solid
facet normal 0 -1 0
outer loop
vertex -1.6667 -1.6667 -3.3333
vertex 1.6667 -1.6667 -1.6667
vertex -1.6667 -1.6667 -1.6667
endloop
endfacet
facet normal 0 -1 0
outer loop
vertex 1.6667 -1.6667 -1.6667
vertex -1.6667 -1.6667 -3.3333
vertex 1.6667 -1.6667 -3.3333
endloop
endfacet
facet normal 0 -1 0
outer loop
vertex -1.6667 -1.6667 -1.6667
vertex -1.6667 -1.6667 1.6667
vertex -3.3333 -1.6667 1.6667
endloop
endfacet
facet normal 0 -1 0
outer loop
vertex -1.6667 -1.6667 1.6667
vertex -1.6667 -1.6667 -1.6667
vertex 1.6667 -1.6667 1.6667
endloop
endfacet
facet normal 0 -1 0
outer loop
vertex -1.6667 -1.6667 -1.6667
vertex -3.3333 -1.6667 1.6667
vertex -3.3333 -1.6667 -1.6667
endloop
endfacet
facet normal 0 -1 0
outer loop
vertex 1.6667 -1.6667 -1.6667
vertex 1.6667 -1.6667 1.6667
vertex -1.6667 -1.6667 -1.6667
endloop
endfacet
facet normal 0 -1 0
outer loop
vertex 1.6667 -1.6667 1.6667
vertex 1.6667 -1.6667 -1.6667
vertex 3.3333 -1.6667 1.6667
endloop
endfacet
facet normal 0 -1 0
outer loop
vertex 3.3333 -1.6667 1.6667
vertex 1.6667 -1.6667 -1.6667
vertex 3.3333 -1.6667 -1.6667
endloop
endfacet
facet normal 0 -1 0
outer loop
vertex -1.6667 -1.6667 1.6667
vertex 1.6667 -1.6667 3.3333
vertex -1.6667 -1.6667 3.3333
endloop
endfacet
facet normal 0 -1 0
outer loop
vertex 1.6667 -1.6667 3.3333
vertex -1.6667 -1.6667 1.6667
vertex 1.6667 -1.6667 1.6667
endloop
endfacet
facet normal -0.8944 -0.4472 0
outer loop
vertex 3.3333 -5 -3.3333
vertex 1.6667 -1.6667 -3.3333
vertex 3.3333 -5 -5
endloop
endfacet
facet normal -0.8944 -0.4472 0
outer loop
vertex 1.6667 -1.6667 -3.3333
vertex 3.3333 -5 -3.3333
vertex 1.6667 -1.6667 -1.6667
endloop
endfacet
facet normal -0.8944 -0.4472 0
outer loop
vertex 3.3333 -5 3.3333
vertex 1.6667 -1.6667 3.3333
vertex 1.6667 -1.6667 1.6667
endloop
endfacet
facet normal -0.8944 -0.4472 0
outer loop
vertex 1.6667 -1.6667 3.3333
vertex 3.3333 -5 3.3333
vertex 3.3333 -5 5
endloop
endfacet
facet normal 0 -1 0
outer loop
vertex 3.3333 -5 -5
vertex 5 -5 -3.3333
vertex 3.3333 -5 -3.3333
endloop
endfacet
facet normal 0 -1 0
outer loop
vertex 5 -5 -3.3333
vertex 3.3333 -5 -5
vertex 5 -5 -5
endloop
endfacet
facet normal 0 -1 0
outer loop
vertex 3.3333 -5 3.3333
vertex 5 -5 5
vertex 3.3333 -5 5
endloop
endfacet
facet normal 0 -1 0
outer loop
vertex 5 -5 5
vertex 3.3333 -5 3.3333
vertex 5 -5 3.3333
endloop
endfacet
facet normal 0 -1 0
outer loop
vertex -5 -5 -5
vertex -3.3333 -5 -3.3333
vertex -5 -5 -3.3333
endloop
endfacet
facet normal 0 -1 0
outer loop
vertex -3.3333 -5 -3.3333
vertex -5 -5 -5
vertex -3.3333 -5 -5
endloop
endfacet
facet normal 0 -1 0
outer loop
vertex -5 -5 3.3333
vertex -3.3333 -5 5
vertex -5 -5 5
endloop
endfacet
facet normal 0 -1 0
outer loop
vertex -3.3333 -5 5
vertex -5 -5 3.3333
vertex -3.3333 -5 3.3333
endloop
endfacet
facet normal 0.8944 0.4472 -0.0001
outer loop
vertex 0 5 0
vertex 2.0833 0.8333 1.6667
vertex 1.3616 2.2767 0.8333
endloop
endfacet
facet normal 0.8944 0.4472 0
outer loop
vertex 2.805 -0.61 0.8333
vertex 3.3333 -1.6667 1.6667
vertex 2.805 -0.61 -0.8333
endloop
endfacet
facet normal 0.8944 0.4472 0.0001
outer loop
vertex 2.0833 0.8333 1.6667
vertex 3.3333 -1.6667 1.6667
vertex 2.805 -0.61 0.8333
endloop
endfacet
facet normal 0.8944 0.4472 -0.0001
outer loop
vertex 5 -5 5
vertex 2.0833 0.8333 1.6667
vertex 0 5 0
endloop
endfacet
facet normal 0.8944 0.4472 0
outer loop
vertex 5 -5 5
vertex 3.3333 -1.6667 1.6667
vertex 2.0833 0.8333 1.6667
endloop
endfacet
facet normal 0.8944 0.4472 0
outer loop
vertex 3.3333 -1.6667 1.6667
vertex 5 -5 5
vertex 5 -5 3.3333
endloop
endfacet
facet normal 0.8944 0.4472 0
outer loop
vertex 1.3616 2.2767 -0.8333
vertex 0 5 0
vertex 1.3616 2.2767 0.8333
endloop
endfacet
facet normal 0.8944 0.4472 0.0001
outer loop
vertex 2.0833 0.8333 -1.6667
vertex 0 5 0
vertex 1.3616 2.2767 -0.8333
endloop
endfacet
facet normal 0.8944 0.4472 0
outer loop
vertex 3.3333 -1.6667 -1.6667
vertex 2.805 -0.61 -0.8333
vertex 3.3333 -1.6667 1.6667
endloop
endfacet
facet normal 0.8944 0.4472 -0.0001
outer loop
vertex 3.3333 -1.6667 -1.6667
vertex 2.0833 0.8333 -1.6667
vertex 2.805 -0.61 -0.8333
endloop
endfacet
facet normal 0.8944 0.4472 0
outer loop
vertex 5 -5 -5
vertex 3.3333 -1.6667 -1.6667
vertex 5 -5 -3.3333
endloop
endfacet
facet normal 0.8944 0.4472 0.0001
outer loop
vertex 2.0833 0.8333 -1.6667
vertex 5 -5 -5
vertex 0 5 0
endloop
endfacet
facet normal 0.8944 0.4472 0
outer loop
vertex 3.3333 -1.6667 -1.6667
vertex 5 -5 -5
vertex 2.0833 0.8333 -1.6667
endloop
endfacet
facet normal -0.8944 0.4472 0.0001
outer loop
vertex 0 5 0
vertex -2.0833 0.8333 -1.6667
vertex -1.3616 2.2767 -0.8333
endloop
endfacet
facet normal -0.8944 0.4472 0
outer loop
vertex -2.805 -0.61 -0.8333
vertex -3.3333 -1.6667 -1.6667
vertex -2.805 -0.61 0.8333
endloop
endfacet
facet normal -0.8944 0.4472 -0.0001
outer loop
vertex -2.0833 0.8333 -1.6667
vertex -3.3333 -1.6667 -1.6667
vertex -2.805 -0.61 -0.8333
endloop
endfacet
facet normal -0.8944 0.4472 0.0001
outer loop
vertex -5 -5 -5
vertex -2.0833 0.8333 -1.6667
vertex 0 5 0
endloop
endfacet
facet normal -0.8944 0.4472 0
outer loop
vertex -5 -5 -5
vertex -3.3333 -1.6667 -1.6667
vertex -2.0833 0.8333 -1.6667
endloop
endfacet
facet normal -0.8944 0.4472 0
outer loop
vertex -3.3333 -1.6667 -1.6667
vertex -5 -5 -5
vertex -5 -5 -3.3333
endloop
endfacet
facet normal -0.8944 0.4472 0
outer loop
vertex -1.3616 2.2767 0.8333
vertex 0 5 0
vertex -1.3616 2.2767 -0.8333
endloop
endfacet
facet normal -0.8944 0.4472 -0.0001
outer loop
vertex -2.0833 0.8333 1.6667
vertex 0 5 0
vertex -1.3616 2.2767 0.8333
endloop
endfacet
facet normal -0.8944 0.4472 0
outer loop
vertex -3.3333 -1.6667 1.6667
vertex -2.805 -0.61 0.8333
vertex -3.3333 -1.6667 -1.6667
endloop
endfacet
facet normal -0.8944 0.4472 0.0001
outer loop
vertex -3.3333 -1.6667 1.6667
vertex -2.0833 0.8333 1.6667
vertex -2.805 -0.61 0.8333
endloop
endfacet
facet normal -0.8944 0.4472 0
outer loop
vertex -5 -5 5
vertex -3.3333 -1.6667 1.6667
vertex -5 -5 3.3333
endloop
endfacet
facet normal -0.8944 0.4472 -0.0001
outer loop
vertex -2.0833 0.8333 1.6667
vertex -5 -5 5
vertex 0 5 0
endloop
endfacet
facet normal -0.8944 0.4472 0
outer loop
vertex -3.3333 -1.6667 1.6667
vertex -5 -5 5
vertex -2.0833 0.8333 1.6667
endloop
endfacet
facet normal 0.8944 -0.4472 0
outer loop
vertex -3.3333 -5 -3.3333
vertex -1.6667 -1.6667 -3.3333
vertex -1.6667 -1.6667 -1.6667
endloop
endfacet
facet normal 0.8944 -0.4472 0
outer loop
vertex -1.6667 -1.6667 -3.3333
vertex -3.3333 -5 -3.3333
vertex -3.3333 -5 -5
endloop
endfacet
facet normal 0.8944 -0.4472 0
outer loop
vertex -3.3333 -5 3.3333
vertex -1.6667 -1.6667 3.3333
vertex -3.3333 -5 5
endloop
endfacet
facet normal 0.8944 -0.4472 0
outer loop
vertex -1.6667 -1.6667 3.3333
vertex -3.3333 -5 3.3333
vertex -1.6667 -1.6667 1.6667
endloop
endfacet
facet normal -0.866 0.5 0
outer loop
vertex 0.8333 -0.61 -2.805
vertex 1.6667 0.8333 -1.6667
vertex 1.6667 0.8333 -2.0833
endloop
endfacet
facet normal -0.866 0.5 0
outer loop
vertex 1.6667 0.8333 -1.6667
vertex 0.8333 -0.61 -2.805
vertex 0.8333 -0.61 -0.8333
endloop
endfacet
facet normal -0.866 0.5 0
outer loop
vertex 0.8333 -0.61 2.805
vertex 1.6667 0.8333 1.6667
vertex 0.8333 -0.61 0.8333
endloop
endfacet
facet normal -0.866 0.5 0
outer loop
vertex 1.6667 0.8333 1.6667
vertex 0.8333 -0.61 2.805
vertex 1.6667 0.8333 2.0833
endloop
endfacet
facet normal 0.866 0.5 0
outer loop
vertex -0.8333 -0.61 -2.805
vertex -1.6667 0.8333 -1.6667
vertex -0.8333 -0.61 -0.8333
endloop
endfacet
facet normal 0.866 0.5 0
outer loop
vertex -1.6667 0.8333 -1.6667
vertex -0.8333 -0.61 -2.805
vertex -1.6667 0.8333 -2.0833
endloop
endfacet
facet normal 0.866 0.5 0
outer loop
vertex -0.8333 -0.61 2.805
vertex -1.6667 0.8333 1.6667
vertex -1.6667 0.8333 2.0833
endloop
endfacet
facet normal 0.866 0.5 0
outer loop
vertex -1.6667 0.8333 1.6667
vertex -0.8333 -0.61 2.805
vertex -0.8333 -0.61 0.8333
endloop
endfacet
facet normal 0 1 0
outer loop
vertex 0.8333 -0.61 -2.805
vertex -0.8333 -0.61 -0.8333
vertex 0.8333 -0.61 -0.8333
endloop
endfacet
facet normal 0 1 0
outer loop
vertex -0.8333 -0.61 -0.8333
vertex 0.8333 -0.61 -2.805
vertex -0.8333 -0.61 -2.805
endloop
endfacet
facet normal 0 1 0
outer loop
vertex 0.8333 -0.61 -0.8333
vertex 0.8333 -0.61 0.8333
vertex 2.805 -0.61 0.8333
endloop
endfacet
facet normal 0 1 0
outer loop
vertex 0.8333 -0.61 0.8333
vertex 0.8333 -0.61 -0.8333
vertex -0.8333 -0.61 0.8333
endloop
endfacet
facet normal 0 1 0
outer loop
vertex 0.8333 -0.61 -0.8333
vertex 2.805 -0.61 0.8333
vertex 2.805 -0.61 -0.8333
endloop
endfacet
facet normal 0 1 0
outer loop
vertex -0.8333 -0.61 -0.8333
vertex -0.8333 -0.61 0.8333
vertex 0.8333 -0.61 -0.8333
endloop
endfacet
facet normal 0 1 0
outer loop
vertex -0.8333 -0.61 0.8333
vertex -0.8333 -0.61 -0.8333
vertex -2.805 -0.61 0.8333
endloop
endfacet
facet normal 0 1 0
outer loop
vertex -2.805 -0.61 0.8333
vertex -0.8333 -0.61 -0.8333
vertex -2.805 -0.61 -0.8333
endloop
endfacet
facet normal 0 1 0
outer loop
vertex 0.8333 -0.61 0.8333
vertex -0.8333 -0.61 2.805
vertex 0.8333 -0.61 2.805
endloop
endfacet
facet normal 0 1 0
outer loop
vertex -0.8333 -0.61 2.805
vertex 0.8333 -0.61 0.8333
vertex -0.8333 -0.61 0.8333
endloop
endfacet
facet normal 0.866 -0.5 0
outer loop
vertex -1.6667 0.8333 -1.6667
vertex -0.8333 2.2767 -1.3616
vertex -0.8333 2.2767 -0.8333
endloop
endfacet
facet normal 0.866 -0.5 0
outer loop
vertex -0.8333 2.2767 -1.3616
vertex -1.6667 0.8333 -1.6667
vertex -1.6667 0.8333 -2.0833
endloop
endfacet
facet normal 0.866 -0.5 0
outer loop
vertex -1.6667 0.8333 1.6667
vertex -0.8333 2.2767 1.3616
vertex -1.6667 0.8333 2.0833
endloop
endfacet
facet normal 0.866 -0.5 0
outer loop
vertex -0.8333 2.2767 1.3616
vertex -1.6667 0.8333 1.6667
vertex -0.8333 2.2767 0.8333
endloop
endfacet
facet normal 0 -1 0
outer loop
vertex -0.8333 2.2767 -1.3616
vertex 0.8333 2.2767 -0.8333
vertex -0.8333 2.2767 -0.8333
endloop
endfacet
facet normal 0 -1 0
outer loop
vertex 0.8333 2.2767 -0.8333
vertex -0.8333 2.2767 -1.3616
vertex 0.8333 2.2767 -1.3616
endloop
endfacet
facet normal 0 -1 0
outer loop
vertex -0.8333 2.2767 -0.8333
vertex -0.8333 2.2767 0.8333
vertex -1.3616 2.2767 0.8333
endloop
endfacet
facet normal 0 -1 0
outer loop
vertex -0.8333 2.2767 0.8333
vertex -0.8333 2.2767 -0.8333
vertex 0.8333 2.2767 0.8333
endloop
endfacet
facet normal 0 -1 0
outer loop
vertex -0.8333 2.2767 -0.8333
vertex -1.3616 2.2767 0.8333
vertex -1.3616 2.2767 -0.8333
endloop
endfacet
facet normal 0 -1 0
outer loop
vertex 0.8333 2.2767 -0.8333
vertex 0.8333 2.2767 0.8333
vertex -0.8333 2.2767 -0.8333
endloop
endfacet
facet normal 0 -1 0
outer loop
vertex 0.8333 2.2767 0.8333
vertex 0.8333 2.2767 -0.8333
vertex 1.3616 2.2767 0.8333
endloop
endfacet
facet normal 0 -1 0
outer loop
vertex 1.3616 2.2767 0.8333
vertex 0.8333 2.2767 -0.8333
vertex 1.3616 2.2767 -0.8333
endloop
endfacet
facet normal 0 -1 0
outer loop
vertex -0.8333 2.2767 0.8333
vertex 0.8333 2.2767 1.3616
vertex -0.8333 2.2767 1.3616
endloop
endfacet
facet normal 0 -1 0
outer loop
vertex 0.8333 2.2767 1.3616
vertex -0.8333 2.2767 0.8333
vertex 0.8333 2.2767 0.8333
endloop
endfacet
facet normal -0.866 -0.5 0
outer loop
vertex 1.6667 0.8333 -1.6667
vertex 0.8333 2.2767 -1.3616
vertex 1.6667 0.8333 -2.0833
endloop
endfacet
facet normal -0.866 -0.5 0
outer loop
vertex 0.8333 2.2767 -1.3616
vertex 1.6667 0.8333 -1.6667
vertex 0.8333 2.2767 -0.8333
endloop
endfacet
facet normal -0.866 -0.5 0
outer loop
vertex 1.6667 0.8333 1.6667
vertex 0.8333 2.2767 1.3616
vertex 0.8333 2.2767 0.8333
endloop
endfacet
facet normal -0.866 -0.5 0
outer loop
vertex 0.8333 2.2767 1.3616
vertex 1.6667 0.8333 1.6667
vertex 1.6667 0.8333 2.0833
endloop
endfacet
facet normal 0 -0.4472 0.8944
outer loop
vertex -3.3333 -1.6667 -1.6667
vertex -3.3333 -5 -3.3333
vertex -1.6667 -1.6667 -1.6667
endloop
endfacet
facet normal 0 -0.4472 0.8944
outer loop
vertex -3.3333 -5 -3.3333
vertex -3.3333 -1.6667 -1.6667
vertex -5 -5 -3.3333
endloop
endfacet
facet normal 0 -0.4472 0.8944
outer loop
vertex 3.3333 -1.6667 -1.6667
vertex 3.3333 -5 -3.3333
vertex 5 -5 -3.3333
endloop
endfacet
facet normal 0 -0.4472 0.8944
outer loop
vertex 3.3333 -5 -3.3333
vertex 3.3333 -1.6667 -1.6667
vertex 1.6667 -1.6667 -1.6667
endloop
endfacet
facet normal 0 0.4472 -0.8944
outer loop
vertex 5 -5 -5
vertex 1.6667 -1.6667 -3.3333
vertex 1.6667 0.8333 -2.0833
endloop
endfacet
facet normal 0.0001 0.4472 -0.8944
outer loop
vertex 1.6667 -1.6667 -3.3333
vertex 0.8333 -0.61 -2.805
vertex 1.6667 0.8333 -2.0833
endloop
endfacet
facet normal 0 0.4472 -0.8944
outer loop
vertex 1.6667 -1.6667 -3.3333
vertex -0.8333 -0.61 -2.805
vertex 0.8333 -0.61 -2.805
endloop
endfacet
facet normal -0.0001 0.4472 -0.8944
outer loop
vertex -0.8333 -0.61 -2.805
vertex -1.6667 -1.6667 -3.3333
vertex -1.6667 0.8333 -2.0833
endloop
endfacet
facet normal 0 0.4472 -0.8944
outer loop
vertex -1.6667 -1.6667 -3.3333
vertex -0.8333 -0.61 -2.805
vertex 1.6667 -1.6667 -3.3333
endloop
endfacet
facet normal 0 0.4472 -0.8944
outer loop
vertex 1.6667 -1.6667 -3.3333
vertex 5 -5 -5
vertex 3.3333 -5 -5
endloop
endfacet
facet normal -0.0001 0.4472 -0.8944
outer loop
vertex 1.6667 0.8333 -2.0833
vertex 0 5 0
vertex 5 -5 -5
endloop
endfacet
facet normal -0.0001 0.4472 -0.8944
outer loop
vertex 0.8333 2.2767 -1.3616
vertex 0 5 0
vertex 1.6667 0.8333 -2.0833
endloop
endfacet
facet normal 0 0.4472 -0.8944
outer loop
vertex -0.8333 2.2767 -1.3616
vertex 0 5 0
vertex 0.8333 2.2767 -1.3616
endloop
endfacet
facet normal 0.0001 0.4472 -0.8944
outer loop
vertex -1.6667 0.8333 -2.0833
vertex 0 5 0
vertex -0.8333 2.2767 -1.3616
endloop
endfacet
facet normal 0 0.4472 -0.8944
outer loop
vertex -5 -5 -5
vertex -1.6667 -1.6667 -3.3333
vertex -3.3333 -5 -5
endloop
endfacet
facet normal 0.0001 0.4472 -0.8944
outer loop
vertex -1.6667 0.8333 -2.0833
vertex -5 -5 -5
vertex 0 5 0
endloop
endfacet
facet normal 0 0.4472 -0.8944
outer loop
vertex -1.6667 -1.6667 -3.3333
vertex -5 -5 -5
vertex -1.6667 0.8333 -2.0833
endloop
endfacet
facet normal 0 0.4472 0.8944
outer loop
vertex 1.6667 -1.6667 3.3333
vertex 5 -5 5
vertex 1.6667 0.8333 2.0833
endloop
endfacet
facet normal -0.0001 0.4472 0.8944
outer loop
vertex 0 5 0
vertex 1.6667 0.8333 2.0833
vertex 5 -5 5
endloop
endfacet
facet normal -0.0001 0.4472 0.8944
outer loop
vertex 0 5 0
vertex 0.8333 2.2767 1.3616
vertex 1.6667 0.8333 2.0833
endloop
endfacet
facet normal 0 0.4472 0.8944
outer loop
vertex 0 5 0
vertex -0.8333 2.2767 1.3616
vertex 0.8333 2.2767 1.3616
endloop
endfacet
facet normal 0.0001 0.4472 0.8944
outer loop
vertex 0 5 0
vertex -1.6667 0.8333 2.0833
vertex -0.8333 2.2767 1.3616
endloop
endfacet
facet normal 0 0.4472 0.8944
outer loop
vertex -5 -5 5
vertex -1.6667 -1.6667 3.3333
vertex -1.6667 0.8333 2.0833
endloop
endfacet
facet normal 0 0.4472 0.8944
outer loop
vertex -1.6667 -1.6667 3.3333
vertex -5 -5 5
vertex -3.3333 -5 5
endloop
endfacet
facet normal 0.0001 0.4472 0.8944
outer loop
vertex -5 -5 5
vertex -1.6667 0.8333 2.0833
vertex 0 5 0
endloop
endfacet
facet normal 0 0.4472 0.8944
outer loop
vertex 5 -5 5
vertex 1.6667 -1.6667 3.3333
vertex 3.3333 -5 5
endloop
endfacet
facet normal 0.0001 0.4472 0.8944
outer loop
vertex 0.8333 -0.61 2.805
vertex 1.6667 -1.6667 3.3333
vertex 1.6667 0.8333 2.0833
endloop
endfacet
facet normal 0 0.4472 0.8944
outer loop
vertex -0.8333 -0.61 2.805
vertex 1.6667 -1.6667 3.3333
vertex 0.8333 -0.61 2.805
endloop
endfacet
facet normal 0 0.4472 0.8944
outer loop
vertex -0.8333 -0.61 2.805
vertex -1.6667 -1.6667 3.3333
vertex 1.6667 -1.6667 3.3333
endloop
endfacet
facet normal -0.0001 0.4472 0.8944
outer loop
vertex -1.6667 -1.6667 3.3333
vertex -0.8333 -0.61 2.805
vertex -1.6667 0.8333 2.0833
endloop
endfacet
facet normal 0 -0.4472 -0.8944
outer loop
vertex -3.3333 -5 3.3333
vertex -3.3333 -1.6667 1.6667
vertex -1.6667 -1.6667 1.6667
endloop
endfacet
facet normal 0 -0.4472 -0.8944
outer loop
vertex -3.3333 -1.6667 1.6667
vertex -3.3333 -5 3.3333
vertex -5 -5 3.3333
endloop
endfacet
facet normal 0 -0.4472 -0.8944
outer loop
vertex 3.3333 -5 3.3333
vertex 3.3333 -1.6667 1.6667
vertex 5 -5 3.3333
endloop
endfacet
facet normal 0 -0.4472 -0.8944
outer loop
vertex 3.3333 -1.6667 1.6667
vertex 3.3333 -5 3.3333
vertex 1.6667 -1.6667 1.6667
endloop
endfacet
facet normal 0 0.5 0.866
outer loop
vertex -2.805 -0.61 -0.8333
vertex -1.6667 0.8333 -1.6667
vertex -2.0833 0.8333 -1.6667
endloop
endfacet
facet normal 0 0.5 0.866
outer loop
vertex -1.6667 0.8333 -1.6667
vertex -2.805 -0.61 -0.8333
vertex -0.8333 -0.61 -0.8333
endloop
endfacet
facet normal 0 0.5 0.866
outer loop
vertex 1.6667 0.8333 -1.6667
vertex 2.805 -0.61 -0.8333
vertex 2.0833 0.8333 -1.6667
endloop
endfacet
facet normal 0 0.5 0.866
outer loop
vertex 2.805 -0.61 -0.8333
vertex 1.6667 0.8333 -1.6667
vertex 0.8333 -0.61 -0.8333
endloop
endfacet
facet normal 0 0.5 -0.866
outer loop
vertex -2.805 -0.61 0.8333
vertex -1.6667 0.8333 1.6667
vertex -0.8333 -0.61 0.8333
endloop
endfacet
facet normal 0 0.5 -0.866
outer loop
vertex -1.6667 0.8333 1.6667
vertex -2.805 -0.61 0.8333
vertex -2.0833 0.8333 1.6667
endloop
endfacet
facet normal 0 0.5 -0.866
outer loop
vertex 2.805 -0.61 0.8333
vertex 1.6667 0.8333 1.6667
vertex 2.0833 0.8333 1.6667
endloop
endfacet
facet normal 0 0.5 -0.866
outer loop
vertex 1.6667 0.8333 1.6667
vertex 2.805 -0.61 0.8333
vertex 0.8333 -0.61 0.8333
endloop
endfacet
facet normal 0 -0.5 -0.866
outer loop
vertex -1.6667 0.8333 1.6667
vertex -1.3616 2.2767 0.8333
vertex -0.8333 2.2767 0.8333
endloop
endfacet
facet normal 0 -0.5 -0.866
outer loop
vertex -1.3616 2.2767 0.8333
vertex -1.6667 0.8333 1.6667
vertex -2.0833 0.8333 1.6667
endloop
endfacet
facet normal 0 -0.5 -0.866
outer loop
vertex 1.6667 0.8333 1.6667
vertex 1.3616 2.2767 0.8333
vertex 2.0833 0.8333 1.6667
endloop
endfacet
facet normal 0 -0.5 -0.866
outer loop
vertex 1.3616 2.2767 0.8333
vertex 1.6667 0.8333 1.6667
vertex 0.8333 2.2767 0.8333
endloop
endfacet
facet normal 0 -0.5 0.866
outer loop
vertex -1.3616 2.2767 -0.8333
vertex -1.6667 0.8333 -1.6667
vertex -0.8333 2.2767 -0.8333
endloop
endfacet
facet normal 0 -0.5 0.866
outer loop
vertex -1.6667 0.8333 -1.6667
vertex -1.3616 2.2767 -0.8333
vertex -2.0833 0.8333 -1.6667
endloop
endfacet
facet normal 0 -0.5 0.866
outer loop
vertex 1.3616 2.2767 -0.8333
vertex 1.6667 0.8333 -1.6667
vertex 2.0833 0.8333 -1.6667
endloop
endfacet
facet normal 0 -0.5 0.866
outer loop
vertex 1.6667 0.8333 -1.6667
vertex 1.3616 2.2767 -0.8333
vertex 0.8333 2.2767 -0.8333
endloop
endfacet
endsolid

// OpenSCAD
// Generated by SolidPython 1.1.3 on 2025-02-17 22:13:45


intersection() {
	translate(v = [0, 0, 0]) {
		translate(v = [-5.0000000000, -5.0000000000, -5.0000000000]) {
			difference() {
				linear_extrude(height = 10) {
					polygon(points = [[0, 0], [5.0000000000, 10], [10, 0], [8.3333333333, 0], [6.6666666667, 3.3333333333], [3.3333333333, 3.3333333333], [1.6666666667, 0]]);
				}
				linear_extrude(height = 10) {
					translate(v = [5.0000000000, 5.8333333333]) {
						circle(r = 1.6666666667);
					}
				}
			}
		}
	}
	translate(v = [0, 0, 0]) {
		rotate(a = 90, v = [0, 1, 0]) {
			translate(v = [-5.0000000000, -5.0000000000, -5.0000000000]) {
				difference() {
					linear_extrude(height = 10) {
						polygon(points = [[0, 0], [5.0000000000, 10], [10, 0], [8.3333333333, 0], [6.6666666667, 3.3333333333], [3.3333333333, 3.3333333333], [1.6666666667, 0]]);
					}
					linear_extrude(height = 10) {
						translate(v = [5.0000000000, 5.8333333333]) {
							circle(r = 1.6666666667);
						}
					}
				}
			}
		}
	}
}
/***********************************************
*********      SolidPython code:      **********
************************************************
 
import math
import matplotlib.pyplot as plt
from solid import *
from solid.utils import *
import subprocess

def arc_points(radius, start_angle, end_angle, num_points=50, center=[0,0]):
    angles = [start_angle + i * (end_angle - start_angle) / (num_points - 1)
              for i in range(num_points)]
    points = [
        [center[0] + radius * math.cos(math.radians(angle)),
         center[1] + radius * math.sin(math.radians(angle))]
        for angle in angles
    ]
    return points

def letter_A(h):
    shape_points = [(0,0), (h/2, h), (h, 0), (5/6*h, 0), (2/3*h, 1/3*h), (1/3*h, 1/3*h), (h/6, 0)]
    shape = polygon(shape_points)
    solid_A = linear_extrude(height=h)(shape)
    
    # hole_points = [(h/2, 2/3*h), (5/12*h, h/2), (7/12*h, h/2)]
    # hole = polygon(hole_points)
    # solid_hole = linear_extrude(height=h)(hole)
    hole = circle(r=h/6)
    positioned_hole = translate([h/2, 7/12*h])(hole)
    solid_hole = linear_extrude(height=h)(positioned_hole)
    
    solid_with_hole = difference()(solid_A, solid_hole)
    centered = translate([-h/2, -h/2, -h/2])(solid_with_hole)
    return centered

def letter_B(h):
    large_arc = arc_points(h/3, -90, 90, num_points = 10, center=[2/3*h, 1/3*h])
    # large_arc_transposed = translate([2/3*h, 1/3*h])(large_arc)

    small_arc = arc_points(h/6, -90, 90, num_points= 10, center=[h/2, 2/3*h])
    # small_arc_transposed = translate([h/2, 2/3*h])(small_arc)

    outer_points = [(0,0), (2/3*h, 0)]
    outer_points.extend(large_arc)
    outer_points.extend(small_arc)
    outer_points.extend([(0,h)])

    outer_shape = polygon(outer_points)
    outer_solid = linear_extrude(height=h)(outer_shape)
    return outer_solid


# def letter_3d(letter, size, font):
#     letter_2d = text(text=letter, size=size, font=font)

#     letter_3d = linear_extrude(height=size)(letter_2d)

#     return letter_3d

# def intersection_3d(letter1, letter2, size, font):
#     letter1_3d = letter_3d(letter1, size, font)
#     letter2_3d = letter_3d(letter2, size, font)

#     letter2_3d = rotate(a=90, v=[1,0,0])(letter2_3d)

#     intersect = intersection()(letter1_3d, letter2_3d)

#     return intersect



if __name__ == "__main__":
    # shapeA = letter_3d("A", 10, "Ariel")
    # scad_render_to_file(shapeA, 'A.scad')
    # shapeB = letter_3d("B", 10, "Ariel")
    # shapeB = rotate(a=90, v=[1,0,0])(shapeB)
    # final = intersection()(shapeA, shapeB)
    # scad_render_to_file(final, "final.scad")
    # # subprocess.run(["C:\\Program Files\\OpenSCAD\\openscad.exe", "-o", "A.stl", "A.scad"])
    # # subprocess.run(["C:\\Program Files\\OpenSCAD\\openscad.exe", "-o", "B.stl", "B.scad"])
    # subprocess.run(["C:\\Program Files\\OpenSCAD\\openscad.exe", "-o", "final.stl", "final.scad"])

    # a = letter_A(10)
    # scad_render_to_file(a, "customA.scad")
    # subprocess.run(["C:\\Program Files\\OpenSCAD\\openscad.exe", "-o", "customA.stl", "customA.scad"])

    # b = letter_B(10)
    # scad_render_to_file(b, "customB.scad")
    # subprocess.run(["C:\\Program Files\\OpenSCAD\\openscad.exe", "-o", "customB.stl", "customB.scad"])

    a1 = translate([0,0,0])(letter_A(10))
    a2 = translate([0,0,0])(rotate(a=90, v=[0,1,0])(letter_A(10)))
    combined = intersection()(a1, a2)
    scad_render_to_file(combined, "AA.scad")
    subprocess.run(["C:\\Program Files\\OpenSCAD\\openscad.exe", "-o", "AA.stl", "AA.scad"])
 
 
************************************************/
